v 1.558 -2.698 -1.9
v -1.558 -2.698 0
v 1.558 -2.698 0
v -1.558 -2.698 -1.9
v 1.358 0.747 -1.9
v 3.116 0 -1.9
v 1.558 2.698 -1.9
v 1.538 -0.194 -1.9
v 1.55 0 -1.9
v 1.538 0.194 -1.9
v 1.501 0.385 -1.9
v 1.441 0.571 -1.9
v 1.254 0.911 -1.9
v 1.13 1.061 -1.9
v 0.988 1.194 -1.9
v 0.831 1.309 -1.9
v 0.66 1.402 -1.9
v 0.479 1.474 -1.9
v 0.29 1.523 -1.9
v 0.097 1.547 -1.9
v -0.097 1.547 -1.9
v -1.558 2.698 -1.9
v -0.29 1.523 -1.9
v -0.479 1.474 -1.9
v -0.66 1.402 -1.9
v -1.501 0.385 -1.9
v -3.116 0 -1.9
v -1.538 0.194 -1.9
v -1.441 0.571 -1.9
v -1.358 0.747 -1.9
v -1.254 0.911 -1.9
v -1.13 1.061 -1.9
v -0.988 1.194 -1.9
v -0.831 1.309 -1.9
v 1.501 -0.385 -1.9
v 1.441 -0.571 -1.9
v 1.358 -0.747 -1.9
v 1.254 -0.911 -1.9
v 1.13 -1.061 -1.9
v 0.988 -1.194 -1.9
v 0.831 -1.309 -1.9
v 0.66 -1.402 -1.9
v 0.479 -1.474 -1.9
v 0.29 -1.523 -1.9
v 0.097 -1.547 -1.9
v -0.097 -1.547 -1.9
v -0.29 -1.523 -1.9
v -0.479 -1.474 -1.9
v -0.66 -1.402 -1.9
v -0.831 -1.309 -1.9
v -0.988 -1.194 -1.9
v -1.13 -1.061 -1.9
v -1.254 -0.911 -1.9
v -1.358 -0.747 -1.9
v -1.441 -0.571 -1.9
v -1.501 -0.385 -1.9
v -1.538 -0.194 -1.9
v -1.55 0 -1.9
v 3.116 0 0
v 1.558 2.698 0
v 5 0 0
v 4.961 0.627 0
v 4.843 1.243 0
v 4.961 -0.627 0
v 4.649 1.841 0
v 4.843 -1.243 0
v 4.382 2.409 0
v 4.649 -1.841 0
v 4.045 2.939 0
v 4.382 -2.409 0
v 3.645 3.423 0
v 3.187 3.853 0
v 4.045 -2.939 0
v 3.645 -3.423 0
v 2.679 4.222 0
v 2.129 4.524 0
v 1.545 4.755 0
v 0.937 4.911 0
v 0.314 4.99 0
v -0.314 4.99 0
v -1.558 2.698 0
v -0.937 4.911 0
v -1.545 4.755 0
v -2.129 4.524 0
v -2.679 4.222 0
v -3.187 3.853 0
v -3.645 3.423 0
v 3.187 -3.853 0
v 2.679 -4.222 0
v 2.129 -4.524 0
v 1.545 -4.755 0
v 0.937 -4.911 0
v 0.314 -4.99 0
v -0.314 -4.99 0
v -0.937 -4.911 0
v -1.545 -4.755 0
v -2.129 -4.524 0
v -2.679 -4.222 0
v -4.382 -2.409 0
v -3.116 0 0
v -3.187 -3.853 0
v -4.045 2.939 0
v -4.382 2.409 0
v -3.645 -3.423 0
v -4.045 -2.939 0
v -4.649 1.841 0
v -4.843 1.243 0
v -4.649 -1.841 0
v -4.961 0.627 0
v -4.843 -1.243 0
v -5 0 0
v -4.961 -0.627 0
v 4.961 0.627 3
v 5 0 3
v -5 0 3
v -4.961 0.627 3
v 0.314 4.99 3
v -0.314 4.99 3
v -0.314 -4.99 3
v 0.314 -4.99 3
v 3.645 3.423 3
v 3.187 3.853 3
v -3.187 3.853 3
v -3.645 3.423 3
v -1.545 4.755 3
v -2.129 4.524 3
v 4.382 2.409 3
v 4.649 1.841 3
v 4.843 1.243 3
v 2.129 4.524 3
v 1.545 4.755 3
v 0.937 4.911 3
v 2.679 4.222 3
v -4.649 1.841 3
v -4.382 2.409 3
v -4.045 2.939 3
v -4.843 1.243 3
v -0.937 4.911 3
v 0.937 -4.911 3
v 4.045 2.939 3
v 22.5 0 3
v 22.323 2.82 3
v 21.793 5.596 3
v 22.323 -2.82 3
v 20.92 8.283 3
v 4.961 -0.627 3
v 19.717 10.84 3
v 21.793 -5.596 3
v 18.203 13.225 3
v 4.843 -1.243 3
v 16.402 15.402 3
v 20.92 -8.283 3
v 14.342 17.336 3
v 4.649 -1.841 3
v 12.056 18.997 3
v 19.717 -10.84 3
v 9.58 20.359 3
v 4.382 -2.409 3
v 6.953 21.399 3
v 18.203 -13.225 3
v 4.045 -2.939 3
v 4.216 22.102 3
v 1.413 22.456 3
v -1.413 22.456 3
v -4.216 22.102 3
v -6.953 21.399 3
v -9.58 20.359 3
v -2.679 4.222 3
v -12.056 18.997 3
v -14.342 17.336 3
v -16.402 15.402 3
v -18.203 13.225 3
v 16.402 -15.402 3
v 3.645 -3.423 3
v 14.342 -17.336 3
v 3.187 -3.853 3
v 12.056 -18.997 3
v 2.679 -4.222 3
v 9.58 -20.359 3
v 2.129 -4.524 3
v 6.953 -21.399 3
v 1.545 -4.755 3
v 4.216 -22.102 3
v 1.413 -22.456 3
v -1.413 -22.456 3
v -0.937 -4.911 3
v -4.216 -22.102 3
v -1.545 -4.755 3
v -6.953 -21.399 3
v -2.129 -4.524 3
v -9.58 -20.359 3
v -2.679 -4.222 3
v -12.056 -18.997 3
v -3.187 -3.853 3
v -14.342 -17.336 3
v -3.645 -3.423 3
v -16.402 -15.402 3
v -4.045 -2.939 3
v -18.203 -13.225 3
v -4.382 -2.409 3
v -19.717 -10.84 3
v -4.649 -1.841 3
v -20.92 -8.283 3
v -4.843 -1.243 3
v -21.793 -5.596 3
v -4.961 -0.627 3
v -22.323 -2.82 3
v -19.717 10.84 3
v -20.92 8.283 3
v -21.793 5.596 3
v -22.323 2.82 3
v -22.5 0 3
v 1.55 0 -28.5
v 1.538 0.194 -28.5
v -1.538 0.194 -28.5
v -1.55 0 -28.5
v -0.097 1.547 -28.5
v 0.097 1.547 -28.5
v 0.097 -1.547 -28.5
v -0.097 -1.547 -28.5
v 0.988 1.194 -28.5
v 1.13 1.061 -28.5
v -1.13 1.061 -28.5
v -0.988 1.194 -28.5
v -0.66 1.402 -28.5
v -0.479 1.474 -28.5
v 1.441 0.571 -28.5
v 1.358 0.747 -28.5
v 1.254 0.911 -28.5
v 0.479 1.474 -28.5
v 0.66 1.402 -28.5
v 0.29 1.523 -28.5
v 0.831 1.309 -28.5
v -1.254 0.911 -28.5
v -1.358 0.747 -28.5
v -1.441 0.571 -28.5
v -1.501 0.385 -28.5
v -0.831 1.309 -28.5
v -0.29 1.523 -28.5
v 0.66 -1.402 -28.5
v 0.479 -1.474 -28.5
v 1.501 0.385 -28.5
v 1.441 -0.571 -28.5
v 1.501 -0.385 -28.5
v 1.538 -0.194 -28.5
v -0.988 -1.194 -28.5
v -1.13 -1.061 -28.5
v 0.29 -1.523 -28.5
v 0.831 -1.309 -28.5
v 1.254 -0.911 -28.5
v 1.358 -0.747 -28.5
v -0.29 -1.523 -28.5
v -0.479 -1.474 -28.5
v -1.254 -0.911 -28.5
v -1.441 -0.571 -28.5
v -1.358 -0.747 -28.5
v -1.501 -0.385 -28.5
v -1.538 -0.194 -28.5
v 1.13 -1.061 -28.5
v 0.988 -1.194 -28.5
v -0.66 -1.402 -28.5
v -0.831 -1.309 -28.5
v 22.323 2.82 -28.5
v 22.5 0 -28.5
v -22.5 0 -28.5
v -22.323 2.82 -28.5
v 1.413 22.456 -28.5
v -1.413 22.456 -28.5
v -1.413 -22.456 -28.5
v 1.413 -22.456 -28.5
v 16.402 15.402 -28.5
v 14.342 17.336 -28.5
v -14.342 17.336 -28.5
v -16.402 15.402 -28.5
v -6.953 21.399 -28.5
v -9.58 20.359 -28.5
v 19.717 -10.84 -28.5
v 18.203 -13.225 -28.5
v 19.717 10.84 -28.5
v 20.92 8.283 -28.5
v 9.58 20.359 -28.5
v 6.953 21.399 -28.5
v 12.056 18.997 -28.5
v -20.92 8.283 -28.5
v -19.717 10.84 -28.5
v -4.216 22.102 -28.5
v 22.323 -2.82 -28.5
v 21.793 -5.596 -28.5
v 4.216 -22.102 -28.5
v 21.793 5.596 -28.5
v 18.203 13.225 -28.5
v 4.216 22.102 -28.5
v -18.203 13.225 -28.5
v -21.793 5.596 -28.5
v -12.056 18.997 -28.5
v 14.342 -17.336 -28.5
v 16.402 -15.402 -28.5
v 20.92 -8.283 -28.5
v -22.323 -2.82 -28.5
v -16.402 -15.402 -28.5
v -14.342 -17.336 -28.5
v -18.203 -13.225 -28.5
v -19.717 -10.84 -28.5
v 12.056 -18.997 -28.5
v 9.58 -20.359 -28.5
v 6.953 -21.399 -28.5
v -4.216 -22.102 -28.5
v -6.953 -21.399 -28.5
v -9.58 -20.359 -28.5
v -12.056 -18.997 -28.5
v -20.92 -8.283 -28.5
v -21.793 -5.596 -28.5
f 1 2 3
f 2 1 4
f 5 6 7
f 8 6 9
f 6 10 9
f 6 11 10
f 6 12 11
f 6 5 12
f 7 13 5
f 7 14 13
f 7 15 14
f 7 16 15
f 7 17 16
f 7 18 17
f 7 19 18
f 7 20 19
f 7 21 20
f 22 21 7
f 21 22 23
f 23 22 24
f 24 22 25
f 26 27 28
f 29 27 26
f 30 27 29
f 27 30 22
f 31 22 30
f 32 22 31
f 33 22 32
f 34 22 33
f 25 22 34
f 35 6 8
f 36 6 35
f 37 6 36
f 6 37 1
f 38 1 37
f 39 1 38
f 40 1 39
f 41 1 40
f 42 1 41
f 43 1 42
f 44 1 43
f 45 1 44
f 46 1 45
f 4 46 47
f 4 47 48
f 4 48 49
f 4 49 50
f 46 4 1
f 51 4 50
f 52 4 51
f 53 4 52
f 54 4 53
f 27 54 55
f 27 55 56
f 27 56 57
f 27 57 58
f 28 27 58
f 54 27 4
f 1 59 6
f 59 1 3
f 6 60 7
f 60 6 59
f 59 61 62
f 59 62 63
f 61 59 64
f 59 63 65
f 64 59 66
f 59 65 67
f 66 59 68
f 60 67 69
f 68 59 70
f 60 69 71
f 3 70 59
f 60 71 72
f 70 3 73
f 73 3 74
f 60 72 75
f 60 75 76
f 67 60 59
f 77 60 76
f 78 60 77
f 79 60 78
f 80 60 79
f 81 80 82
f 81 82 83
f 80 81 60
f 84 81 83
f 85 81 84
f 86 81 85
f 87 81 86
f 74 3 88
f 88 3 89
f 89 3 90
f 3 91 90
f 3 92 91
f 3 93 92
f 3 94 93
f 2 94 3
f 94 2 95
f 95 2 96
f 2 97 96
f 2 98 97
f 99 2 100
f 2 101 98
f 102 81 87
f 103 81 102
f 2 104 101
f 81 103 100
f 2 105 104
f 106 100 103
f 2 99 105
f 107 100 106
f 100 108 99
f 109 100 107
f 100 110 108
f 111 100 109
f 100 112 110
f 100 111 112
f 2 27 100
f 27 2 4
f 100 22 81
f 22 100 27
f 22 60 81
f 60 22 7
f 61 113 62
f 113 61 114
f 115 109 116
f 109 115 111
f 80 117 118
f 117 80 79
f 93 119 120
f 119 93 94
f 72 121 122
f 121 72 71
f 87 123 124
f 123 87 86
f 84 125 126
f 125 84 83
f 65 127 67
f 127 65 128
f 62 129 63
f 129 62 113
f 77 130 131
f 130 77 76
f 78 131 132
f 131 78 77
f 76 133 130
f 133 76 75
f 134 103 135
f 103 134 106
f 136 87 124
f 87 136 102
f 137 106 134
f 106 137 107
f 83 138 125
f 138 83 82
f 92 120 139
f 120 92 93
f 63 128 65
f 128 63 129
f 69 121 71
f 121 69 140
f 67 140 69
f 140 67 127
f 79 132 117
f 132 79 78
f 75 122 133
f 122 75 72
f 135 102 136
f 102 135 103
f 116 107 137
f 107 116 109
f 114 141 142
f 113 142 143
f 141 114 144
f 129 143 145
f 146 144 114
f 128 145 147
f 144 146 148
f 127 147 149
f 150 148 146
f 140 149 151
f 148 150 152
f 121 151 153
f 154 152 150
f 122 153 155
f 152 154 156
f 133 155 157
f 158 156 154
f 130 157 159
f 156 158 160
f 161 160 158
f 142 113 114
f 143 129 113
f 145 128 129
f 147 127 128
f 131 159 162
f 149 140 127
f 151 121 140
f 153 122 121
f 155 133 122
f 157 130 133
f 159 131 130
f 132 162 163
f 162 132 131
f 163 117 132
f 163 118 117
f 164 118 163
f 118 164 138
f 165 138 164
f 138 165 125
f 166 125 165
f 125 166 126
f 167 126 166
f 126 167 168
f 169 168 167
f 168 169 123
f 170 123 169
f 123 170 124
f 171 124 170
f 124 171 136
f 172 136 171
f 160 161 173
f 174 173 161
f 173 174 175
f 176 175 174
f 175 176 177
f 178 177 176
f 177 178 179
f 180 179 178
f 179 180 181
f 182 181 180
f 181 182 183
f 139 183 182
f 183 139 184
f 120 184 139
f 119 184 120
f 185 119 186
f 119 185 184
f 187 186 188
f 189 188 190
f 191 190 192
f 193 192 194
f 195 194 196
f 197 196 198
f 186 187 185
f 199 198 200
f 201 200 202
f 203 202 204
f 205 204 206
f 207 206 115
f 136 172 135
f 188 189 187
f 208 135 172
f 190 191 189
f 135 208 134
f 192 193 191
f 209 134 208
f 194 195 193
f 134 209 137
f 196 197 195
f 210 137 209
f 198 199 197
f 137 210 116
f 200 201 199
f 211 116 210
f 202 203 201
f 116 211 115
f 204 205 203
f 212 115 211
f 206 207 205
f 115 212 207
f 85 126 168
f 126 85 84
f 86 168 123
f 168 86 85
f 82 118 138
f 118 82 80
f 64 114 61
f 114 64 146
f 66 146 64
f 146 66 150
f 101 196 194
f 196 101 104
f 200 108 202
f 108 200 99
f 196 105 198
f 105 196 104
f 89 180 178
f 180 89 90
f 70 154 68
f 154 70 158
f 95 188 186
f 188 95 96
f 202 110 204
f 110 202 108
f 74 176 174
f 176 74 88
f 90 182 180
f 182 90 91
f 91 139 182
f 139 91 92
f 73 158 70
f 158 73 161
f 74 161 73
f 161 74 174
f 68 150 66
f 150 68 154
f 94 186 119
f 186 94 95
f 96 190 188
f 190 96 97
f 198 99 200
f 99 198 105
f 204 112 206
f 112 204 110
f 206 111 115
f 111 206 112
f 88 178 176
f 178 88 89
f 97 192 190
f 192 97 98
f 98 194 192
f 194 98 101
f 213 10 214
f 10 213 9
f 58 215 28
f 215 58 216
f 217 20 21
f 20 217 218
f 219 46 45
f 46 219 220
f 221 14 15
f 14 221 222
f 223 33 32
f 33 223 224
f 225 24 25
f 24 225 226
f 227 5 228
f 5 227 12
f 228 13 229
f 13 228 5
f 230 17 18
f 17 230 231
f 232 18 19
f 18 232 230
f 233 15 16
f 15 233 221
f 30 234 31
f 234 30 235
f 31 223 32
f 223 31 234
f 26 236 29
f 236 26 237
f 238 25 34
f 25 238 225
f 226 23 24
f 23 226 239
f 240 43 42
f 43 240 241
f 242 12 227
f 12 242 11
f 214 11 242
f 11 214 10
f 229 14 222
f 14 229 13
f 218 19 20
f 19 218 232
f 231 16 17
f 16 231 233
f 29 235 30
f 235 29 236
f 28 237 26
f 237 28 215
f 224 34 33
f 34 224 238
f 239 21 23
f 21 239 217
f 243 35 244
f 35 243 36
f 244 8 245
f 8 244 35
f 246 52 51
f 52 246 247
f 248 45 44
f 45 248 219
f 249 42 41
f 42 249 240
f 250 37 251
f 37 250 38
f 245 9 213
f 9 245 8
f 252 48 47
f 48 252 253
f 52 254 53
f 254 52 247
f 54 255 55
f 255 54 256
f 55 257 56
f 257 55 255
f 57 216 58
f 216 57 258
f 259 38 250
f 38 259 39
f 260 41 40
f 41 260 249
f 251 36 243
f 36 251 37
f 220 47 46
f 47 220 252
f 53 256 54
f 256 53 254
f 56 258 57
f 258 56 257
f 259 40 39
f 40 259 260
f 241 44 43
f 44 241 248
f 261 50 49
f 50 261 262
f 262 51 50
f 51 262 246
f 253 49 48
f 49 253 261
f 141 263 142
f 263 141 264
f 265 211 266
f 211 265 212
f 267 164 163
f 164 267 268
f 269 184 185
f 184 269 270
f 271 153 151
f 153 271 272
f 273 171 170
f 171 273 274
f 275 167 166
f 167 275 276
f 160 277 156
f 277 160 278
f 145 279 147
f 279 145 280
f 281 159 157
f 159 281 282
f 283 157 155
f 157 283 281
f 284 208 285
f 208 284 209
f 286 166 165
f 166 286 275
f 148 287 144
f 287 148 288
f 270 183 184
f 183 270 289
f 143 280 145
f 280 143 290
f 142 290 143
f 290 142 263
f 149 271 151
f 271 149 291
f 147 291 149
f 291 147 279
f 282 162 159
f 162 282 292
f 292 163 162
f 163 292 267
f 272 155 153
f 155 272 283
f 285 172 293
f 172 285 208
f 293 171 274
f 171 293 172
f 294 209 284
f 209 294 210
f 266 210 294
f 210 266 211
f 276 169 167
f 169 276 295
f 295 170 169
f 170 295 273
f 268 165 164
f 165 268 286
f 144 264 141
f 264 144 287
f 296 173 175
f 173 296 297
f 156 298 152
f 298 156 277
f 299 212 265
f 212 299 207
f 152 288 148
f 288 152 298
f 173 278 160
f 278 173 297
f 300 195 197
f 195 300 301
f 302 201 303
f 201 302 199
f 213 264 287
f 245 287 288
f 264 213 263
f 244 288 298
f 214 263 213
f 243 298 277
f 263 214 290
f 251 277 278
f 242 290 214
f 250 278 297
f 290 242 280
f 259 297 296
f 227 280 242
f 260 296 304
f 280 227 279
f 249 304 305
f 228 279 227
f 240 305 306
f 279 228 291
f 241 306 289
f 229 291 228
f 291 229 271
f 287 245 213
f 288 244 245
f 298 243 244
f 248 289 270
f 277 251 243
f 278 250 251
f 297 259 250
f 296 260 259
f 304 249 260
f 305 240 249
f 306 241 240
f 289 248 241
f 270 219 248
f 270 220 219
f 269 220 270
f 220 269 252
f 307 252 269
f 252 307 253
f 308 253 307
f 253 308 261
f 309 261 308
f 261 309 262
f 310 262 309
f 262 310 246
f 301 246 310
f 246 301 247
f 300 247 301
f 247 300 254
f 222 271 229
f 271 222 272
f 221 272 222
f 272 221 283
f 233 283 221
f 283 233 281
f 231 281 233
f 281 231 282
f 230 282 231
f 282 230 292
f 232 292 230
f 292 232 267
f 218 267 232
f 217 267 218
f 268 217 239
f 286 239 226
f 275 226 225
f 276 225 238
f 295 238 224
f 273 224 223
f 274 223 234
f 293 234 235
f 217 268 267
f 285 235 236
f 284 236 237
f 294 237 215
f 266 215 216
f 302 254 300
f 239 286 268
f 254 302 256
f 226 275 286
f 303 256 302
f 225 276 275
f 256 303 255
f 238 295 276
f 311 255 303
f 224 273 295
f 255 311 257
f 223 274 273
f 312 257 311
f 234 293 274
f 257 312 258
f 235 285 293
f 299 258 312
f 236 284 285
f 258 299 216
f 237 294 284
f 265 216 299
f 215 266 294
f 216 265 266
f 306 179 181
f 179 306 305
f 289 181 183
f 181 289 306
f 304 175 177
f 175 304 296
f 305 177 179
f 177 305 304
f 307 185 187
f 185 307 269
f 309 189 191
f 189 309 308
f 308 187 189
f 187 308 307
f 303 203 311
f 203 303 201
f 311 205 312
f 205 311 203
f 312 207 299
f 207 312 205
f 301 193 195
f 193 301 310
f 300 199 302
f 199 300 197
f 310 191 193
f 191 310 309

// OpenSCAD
$fn = 50;

difference() {
	union() {
		translate(v = [0, 0, -28.5]) {
			cylinder(h = 31.5, r = 22.5);
		}
	}
	union() {
		translate(v = [0, 0, 0]) {
			rotate(a = [0, 0, 0]) {
				difference() {
					union() {
						translate(v = [0, 0, -1.9]) {
							linear_extrude(height = 1.9) {
								polygon(points = [[3.1158, 0.0], [1.5579000000000005, 2.698361953111554], [-1.5578999999999994, 2.6983619531115544], [-3.1158, 3.815754496783323e-16], [-1.5579000000000014, -2.6983619531115535], [1.557899999999998, -2.6983619531115552]]);
							}
						}
					}
					union();
				}
			}
		}
		#cylinder(h = 3, r = 5.0);
		#translate(v = [0, 0, -100.0]) {
			cylinder(h = 200, r = 1.55);
		}
	}
}
